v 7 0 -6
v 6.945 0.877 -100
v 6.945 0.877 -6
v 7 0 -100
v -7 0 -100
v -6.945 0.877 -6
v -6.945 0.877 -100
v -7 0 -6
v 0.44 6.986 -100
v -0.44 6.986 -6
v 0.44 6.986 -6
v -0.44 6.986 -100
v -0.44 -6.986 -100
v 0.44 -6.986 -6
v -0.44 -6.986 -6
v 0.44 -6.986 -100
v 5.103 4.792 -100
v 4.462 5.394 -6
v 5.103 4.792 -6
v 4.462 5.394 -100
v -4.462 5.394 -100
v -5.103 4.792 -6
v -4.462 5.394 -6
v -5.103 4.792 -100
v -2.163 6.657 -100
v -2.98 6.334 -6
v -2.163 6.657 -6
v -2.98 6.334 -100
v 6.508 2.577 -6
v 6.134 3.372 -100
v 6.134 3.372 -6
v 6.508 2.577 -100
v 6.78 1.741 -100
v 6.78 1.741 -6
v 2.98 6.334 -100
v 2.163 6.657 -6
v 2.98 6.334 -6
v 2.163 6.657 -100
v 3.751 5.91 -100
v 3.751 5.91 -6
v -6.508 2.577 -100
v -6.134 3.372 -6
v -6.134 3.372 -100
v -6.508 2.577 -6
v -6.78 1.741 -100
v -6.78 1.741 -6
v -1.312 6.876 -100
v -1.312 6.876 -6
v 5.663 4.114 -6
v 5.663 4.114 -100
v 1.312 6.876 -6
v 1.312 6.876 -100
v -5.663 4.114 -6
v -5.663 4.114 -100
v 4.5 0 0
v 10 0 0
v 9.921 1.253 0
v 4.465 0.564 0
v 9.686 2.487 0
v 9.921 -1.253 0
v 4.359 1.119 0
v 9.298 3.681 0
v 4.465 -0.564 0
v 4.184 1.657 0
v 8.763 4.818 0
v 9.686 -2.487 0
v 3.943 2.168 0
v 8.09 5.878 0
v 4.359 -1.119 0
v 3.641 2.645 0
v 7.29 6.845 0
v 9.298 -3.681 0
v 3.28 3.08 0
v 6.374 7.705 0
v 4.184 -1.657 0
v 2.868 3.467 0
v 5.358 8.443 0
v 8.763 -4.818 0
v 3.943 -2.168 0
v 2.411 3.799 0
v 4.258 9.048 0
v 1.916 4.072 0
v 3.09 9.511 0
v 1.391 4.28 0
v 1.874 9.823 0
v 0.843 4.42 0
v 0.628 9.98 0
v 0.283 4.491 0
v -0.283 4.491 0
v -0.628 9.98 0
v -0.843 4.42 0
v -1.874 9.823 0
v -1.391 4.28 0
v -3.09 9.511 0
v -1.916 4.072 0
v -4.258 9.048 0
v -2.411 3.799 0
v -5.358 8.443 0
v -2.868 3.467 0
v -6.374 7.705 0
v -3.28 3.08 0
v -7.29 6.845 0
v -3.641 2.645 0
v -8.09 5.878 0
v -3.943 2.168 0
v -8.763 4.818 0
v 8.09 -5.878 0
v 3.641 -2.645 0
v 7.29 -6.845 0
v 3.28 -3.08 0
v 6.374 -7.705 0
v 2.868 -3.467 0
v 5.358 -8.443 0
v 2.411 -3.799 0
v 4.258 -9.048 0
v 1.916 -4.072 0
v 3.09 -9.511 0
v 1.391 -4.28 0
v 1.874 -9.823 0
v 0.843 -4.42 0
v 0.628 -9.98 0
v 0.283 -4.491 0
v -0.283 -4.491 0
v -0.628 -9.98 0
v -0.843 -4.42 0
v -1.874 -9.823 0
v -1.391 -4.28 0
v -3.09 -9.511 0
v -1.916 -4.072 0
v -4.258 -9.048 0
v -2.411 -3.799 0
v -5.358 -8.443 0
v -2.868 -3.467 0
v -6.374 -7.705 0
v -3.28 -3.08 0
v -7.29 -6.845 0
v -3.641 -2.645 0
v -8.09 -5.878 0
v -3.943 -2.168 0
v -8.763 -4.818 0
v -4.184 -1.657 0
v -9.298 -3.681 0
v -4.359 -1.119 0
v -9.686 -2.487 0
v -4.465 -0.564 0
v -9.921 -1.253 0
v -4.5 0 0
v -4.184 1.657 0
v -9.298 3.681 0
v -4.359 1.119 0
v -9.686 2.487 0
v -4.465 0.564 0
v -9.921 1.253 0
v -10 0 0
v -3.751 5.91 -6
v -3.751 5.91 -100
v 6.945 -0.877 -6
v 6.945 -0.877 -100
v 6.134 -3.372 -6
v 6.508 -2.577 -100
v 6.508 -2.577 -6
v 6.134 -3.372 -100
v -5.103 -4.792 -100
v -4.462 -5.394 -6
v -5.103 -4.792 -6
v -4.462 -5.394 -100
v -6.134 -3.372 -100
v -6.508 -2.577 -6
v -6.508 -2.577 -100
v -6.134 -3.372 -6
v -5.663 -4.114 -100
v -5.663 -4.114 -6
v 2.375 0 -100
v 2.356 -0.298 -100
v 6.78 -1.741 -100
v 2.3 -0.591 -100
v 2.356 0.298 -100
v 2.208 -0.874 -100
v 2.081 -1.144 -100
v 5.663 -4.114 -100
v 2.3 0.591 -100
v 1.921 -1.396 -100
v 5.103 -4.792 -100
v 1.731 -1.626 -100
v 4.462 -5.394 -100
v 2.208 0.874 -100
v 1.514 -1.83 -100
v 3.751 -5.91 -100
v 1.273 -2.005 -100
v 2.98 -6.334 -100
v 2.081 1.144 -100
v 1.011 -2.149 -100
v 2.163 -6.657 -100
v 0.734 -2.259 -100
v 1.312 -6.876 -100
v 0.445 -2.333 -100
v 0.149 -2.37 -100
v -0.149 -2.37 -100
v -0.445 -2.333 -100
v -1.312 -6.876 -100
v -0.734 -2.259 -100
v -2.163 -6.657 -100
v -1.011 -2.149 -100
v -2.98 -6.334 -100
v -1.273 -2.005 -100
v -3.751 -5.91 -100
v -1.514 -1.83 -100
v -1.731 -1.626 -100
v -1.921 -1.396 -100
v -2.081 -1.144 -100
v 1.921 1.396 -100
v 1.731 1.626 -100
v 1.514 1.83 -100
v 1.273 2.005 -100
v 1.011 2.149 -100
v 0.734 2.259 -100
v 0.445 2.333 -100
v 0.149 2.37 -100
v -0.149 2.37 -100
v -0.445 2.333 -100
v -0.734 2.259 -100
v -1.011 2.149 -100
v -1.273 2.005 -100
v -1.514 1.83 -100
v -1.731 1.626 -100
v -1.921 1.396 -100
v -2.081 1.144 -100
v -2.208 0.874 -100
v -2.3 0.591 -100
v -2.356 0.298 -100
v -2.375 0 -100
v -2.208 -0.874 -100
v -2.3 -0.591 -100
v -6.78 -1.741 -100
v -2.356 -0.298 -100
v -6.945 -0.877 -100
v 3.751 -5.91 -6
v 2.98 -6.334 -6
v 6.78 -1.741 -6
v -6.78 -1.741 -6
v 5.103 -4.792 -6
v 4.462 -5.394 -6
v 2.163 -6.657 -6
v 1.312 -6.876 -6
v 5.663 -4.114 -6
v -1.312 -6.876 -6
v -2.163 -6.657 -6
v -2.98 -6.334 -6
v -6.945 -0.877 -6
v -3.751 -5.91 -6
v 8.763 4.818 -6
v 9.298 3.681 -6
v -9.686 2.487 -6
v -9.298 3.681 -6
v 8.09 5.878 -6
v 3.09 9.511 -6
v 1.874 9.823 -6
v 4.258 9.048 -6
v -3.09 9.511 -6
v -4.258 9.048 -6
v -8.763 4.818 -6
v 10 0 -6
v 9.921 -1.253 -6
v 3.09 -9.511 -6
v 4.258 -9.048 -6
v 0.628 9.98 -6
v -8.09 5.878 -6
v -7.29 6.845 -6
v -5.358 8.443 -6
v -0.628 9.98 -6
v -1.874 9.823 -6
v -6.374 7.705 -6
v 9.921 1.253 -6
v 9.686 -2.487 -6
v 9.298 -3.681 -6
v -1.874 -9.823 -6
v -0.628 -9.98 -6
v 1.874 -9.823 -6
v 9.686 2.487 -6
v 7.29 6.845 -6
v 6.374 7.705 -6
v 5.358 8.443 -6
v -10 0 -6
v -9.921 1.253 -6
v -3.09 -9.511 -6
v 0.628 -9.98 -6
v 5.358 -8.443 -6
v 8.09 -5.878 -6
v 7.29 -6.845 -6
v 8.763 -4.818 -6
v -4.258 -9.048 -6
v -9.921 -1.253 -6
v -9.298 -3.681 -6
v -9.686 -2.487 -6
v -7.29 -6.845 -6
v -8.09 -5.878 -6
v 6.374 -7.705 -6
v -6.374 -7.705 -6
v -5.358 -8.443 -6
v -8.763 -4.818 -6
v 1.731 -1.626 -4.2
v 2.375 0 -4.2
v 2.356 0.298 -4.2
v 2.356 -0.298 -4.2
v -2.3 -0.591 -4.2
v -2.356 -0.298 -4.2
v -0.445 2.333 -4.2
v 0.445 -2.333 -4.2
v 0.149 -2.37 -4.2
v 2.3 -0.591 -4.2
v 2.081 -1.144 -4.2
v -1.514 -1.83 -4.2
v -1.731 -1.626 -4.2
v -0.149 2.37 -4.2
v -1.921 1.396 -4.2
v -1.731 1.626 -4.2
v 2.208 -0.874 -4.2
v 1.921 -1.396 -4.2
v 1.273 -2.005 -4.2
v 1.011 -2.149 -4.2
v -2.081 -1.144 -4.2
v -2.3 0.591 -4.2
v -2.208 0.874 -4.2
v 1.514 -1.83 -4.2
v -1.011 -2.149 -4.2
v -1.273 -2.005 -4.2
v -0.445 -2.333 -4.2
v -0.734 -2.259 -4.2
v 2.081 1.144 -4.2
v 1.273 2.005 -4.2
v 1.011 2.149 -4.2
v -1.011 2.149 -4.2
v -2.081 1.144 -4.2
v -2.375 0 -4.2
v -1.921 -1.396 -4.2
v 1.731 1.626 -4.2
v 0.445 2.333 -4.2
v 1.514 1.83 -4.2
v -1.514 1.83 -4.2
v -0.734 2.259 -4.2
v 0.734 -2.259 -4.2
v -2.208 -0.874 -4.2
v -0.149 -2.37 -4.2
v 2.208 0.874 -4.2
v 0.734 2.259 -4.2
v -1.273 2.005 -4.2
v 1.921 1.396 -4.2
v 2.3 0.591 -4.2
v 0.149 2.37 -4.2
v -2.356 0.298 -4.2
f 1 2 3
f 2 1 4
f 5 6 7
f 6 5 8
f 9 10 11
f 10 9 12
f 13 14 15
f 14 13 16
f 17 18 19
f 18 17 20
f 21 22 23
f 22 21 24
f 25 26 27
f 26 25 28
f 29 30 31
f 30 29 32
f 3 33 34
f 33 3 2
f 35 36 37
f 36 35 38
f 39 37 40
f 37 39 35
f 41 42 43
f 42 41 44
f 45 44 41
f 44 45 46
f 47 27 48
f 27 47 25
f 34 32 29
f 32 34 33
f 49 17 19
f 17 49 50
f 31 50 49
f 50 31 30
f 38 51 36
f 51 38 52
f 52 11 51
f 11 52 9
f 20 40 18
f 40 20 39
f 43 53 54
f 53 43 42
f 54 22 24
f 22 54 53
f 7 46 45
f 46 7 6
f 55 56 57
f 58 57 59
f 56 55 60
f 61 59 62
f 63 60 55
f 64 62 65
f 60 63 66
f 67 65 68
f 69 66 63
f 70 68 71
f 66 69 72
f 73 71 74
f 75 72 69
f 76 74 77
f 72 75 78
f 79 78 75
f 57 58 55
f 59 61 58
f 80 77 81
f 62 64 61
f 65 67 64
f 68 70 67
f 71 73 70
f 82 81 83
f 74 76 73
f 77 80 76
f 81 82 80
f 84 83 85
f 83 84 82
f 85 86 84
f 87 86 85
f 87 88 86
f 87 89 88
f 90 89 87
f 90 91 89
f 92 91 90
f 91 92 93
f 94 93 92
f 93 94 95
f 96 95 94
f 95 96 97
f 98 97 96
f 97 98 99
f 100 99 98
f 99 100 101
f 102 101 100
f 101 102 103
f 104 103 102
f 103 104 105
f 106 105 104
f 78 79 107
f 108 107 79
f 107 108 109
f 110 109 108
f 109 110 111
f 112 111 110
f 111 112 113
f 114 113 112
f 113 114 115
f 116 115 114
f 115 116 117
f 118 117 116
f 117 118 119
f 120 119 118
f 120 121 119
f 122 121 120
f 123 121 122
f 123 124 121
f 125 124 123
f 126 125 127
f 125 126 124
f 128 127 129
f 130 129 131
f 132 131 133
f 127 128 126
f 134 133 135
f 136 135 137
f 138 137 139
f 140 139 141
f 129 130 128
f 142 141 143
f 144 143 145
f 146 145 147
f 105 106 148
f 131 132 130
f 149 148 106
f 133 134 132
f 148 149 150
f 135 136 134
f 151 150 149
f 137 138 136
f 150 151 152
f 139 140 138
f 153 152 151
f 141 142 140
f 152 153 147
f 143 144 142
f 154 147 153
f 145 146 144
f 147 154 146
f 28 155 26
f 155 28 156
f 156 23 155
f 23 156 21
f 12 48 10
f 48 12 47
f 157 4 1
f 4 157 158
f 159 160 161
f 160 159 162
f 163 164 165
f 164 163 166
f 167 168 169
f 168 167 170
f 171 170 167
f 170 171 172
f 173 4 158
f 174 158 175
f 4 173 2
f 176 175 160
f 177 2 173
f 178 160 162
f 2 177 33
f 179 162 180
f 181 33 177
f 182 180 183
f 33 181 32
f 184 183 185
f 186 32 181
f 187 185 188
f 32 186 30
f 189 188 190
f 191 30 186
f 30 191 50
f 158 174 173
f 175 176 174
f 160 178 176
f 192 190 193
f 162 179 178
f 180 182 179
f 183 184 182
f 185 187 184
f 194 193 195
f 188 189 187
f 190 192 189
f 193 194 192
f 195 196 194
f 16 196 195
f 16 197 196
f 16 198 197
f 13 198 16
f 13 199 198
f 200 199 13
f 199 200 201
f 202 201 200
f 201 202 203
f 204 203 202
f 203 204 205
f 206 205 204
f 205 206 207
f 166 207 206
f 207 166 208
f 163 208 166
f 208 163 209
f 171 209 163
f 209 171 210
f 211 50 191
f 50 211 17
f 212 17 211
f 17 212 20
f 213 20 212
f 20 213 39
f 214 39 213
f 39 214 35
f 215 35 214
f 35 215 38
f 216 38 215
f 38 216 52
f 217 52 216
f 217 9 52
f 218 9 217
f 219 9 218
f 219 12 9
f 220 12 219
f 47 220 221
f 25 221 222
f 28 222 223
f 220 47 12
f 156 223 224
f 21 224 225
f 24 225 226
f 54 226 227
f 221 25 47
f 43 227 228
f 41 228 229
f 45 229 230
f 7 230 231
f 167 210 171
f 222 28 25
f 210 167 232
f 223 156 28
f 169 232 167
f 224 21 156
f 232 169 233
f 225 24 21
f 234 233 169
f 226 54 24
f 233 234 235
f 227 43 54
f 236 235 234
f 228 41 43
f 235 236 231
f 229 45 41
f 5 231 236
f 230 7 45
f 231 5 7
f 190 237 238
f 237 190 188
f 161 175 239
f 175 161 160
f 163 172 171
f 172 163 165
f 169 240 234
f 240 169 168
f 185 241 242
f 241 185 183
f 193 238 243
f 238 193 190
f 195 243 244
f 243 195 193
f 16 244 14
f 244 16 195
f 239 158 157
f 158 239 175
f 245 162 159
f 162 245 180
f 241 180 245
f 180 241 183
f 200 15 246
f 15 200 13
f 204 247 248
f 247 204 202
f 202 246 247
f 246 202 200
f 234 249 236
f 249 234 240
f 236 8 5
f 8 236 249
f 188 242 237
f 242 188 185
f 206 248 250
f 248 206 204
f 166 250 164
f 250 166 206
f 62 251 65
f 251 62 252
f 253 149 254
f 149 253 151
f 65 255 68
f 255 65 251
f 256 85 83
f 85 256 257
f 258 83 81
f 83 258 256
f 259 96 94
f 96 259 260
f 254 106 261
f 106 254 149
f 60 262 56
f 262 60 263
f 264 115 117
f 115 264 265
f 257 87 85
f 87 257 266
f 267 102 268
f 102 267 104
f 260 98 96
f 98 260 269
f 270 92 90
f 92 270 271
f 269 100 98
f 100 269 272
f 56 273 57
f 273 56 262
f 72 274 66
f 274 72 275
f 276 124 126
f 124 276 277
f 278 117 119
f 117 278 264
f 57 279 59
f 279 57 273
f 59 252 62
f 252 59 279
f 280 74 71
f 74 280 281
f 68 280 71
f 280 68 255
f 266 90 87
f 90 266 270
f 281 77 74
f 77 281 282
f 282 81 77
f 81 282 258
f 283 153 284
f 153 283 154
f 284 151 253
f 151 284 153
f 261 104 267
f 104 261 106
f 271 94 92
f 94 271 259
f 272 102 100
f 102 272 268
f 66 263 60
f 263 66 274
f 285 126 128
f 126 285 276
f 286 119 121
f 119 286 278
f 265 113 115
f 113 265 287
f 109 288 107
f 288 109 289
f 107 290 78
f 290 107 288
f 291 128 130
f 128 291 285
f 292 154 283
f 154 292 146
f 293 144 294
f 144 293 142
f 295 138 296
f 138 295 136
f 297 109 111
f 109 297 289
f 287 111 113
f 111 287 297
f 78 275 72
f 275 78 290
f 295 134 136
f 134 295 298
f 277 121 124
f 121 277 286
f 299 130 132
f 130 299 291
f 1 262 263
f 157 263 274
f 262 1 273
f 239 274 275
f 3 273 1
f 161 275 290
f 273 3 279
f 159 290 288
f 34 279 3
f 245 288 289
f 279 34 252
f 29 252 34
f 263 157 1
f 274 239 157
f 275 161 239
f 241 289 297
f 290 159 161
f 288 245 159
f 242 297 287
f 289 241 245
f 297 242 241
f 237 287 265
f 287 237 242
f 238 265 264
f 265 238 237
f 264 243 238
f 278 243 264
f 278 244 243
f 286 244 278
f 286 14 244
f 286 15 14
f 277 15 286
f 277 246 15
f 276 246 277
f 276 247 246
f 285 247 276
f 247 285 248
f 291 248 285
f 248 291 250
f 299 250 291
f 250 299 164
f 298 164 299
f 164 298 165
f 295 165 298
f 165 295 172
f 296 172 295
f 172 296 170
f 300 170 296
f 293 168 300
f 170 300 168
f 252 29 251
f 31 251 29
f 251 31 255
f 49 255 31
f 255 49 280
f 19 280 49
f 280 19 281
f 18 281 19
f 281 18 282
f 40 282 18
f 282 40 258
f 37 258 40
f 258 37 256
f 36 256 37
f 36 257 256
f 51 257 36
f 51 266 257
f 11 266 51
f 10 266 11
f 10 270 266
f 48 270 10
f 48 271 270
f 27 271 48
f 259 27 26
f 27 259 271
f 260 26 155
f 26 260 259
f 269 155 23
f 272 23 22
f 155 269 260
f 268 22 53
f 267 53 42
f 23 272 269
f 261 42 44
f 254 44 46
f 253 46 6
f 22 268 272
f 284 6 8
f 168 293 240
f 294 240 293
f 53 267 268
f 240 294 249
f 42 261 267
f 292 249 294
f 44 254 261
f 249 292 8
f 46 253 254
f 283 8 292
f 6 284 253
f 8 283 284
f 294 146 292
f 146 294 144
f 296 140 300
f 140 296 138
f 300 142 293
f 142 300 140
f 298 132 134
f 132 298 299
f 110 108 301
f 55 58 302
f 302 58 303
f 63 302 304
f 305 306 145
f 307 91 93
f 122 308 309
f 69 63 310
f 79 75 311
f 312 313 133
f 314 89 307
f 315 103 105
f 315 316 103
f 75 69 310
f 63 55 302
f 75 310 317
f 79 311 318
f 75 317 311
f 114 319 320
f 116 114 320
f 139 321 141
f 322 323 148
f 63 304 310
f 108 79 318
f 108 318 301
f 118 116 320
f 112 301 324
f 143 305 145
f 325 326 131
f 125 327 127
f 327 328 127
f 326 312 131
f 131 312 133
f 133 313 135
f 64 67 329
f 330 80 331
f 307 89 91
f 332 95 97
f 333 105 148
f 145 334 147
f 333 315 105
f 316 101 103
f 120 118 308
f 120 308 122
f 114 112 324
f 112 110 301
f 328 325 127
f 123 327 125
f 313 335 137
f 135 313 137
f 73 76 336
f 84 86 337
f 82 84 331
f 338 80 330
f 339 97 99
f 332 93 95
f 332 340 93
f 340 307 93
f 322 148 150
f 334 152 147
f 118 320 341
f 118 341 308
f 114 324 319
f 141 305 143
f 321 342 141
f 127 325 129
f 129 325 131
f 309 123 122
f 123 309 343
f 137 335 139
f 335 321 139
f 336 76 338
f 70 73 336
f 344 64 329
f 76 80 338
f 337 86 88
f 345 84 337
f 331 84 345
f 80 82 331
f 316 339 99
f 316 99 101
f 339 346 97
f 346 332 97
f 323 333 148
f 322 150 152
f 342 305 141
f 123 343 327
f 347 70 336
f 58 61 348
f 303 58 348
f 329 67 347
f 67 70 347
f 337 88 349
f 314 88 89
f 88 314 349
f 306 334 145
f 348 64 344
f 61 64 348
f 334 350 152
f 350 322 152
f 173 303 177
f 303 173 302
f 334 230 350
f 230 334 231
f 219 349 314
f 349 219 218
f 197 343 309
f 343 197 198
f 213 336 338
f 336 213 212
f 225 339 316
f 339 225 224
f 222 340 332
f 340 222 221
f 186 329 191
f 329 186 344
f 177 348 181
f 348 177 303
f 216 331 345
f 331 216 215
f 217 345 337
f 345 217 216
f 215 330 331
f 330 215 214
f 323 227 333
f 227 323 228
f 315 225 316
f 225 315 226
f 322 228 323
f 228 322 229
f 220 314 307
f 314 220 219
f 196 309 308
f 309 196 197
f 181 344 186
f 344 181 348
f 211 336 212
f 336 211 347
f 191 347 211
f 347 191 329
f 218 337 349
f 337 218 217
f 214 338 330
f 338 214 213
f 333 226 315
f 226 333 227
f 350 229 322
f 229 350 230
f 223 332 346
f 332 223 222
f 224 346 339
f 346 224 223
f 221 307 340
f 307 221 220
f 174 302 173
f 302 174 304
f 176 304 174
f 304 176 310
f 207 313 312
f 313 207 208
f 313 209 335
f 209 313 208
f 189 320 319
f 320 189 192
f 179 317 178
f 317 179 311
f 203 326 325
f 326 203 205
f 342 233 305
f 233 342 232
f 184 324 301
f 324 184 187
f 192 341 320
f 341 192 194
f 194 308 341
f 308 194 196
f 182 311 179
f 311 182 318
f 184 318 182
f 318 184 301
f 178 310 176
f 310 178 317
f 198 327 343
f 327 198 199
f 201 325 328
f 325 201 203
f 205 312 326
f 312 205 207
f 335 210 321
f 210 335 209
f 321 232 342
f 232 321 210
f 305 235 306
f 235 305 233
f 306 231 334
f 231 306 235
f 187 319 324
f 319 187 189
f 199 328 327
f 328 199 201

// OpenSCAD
$fn = 50;


difference() {
	union() {
		translate(v = [0, 0, -100.0000000000]) {
			cylinder(h = 100, r = 7.0000000000);
		}
		translate(v = [0, 0, -6.0000000000]) {
			cylinder(h = 6, r = 10.0000000000);
		}
	}
	union() {
		translate(v = [0, 0, 0]) {
			rotate(a = [0, 0, 0]) {
				difference() {
					union() {
						#translate(v = [0, 0, -100.0000000000]) {
							cylinder(h = 100, r = 2.2500000000);
						}
						#translate(v = [0, 0, -4.2000000000]) {
							cylinder(h = 4.2000000000, r = 7.0000000000, r1 = 2.3750000000, r2 = 4.5000000000);
						}
						#translate(v = [0, 0, -100.0000000000]) {
							cylinder(h = 100, r = 2.3750000000);
						}
						#translate(v = [0, 0, -100.0000000000]) {
							cylinder(h = 100, r = 2.2500000000);
						}
					}
					union();
				}
			}
		}
	}
}
